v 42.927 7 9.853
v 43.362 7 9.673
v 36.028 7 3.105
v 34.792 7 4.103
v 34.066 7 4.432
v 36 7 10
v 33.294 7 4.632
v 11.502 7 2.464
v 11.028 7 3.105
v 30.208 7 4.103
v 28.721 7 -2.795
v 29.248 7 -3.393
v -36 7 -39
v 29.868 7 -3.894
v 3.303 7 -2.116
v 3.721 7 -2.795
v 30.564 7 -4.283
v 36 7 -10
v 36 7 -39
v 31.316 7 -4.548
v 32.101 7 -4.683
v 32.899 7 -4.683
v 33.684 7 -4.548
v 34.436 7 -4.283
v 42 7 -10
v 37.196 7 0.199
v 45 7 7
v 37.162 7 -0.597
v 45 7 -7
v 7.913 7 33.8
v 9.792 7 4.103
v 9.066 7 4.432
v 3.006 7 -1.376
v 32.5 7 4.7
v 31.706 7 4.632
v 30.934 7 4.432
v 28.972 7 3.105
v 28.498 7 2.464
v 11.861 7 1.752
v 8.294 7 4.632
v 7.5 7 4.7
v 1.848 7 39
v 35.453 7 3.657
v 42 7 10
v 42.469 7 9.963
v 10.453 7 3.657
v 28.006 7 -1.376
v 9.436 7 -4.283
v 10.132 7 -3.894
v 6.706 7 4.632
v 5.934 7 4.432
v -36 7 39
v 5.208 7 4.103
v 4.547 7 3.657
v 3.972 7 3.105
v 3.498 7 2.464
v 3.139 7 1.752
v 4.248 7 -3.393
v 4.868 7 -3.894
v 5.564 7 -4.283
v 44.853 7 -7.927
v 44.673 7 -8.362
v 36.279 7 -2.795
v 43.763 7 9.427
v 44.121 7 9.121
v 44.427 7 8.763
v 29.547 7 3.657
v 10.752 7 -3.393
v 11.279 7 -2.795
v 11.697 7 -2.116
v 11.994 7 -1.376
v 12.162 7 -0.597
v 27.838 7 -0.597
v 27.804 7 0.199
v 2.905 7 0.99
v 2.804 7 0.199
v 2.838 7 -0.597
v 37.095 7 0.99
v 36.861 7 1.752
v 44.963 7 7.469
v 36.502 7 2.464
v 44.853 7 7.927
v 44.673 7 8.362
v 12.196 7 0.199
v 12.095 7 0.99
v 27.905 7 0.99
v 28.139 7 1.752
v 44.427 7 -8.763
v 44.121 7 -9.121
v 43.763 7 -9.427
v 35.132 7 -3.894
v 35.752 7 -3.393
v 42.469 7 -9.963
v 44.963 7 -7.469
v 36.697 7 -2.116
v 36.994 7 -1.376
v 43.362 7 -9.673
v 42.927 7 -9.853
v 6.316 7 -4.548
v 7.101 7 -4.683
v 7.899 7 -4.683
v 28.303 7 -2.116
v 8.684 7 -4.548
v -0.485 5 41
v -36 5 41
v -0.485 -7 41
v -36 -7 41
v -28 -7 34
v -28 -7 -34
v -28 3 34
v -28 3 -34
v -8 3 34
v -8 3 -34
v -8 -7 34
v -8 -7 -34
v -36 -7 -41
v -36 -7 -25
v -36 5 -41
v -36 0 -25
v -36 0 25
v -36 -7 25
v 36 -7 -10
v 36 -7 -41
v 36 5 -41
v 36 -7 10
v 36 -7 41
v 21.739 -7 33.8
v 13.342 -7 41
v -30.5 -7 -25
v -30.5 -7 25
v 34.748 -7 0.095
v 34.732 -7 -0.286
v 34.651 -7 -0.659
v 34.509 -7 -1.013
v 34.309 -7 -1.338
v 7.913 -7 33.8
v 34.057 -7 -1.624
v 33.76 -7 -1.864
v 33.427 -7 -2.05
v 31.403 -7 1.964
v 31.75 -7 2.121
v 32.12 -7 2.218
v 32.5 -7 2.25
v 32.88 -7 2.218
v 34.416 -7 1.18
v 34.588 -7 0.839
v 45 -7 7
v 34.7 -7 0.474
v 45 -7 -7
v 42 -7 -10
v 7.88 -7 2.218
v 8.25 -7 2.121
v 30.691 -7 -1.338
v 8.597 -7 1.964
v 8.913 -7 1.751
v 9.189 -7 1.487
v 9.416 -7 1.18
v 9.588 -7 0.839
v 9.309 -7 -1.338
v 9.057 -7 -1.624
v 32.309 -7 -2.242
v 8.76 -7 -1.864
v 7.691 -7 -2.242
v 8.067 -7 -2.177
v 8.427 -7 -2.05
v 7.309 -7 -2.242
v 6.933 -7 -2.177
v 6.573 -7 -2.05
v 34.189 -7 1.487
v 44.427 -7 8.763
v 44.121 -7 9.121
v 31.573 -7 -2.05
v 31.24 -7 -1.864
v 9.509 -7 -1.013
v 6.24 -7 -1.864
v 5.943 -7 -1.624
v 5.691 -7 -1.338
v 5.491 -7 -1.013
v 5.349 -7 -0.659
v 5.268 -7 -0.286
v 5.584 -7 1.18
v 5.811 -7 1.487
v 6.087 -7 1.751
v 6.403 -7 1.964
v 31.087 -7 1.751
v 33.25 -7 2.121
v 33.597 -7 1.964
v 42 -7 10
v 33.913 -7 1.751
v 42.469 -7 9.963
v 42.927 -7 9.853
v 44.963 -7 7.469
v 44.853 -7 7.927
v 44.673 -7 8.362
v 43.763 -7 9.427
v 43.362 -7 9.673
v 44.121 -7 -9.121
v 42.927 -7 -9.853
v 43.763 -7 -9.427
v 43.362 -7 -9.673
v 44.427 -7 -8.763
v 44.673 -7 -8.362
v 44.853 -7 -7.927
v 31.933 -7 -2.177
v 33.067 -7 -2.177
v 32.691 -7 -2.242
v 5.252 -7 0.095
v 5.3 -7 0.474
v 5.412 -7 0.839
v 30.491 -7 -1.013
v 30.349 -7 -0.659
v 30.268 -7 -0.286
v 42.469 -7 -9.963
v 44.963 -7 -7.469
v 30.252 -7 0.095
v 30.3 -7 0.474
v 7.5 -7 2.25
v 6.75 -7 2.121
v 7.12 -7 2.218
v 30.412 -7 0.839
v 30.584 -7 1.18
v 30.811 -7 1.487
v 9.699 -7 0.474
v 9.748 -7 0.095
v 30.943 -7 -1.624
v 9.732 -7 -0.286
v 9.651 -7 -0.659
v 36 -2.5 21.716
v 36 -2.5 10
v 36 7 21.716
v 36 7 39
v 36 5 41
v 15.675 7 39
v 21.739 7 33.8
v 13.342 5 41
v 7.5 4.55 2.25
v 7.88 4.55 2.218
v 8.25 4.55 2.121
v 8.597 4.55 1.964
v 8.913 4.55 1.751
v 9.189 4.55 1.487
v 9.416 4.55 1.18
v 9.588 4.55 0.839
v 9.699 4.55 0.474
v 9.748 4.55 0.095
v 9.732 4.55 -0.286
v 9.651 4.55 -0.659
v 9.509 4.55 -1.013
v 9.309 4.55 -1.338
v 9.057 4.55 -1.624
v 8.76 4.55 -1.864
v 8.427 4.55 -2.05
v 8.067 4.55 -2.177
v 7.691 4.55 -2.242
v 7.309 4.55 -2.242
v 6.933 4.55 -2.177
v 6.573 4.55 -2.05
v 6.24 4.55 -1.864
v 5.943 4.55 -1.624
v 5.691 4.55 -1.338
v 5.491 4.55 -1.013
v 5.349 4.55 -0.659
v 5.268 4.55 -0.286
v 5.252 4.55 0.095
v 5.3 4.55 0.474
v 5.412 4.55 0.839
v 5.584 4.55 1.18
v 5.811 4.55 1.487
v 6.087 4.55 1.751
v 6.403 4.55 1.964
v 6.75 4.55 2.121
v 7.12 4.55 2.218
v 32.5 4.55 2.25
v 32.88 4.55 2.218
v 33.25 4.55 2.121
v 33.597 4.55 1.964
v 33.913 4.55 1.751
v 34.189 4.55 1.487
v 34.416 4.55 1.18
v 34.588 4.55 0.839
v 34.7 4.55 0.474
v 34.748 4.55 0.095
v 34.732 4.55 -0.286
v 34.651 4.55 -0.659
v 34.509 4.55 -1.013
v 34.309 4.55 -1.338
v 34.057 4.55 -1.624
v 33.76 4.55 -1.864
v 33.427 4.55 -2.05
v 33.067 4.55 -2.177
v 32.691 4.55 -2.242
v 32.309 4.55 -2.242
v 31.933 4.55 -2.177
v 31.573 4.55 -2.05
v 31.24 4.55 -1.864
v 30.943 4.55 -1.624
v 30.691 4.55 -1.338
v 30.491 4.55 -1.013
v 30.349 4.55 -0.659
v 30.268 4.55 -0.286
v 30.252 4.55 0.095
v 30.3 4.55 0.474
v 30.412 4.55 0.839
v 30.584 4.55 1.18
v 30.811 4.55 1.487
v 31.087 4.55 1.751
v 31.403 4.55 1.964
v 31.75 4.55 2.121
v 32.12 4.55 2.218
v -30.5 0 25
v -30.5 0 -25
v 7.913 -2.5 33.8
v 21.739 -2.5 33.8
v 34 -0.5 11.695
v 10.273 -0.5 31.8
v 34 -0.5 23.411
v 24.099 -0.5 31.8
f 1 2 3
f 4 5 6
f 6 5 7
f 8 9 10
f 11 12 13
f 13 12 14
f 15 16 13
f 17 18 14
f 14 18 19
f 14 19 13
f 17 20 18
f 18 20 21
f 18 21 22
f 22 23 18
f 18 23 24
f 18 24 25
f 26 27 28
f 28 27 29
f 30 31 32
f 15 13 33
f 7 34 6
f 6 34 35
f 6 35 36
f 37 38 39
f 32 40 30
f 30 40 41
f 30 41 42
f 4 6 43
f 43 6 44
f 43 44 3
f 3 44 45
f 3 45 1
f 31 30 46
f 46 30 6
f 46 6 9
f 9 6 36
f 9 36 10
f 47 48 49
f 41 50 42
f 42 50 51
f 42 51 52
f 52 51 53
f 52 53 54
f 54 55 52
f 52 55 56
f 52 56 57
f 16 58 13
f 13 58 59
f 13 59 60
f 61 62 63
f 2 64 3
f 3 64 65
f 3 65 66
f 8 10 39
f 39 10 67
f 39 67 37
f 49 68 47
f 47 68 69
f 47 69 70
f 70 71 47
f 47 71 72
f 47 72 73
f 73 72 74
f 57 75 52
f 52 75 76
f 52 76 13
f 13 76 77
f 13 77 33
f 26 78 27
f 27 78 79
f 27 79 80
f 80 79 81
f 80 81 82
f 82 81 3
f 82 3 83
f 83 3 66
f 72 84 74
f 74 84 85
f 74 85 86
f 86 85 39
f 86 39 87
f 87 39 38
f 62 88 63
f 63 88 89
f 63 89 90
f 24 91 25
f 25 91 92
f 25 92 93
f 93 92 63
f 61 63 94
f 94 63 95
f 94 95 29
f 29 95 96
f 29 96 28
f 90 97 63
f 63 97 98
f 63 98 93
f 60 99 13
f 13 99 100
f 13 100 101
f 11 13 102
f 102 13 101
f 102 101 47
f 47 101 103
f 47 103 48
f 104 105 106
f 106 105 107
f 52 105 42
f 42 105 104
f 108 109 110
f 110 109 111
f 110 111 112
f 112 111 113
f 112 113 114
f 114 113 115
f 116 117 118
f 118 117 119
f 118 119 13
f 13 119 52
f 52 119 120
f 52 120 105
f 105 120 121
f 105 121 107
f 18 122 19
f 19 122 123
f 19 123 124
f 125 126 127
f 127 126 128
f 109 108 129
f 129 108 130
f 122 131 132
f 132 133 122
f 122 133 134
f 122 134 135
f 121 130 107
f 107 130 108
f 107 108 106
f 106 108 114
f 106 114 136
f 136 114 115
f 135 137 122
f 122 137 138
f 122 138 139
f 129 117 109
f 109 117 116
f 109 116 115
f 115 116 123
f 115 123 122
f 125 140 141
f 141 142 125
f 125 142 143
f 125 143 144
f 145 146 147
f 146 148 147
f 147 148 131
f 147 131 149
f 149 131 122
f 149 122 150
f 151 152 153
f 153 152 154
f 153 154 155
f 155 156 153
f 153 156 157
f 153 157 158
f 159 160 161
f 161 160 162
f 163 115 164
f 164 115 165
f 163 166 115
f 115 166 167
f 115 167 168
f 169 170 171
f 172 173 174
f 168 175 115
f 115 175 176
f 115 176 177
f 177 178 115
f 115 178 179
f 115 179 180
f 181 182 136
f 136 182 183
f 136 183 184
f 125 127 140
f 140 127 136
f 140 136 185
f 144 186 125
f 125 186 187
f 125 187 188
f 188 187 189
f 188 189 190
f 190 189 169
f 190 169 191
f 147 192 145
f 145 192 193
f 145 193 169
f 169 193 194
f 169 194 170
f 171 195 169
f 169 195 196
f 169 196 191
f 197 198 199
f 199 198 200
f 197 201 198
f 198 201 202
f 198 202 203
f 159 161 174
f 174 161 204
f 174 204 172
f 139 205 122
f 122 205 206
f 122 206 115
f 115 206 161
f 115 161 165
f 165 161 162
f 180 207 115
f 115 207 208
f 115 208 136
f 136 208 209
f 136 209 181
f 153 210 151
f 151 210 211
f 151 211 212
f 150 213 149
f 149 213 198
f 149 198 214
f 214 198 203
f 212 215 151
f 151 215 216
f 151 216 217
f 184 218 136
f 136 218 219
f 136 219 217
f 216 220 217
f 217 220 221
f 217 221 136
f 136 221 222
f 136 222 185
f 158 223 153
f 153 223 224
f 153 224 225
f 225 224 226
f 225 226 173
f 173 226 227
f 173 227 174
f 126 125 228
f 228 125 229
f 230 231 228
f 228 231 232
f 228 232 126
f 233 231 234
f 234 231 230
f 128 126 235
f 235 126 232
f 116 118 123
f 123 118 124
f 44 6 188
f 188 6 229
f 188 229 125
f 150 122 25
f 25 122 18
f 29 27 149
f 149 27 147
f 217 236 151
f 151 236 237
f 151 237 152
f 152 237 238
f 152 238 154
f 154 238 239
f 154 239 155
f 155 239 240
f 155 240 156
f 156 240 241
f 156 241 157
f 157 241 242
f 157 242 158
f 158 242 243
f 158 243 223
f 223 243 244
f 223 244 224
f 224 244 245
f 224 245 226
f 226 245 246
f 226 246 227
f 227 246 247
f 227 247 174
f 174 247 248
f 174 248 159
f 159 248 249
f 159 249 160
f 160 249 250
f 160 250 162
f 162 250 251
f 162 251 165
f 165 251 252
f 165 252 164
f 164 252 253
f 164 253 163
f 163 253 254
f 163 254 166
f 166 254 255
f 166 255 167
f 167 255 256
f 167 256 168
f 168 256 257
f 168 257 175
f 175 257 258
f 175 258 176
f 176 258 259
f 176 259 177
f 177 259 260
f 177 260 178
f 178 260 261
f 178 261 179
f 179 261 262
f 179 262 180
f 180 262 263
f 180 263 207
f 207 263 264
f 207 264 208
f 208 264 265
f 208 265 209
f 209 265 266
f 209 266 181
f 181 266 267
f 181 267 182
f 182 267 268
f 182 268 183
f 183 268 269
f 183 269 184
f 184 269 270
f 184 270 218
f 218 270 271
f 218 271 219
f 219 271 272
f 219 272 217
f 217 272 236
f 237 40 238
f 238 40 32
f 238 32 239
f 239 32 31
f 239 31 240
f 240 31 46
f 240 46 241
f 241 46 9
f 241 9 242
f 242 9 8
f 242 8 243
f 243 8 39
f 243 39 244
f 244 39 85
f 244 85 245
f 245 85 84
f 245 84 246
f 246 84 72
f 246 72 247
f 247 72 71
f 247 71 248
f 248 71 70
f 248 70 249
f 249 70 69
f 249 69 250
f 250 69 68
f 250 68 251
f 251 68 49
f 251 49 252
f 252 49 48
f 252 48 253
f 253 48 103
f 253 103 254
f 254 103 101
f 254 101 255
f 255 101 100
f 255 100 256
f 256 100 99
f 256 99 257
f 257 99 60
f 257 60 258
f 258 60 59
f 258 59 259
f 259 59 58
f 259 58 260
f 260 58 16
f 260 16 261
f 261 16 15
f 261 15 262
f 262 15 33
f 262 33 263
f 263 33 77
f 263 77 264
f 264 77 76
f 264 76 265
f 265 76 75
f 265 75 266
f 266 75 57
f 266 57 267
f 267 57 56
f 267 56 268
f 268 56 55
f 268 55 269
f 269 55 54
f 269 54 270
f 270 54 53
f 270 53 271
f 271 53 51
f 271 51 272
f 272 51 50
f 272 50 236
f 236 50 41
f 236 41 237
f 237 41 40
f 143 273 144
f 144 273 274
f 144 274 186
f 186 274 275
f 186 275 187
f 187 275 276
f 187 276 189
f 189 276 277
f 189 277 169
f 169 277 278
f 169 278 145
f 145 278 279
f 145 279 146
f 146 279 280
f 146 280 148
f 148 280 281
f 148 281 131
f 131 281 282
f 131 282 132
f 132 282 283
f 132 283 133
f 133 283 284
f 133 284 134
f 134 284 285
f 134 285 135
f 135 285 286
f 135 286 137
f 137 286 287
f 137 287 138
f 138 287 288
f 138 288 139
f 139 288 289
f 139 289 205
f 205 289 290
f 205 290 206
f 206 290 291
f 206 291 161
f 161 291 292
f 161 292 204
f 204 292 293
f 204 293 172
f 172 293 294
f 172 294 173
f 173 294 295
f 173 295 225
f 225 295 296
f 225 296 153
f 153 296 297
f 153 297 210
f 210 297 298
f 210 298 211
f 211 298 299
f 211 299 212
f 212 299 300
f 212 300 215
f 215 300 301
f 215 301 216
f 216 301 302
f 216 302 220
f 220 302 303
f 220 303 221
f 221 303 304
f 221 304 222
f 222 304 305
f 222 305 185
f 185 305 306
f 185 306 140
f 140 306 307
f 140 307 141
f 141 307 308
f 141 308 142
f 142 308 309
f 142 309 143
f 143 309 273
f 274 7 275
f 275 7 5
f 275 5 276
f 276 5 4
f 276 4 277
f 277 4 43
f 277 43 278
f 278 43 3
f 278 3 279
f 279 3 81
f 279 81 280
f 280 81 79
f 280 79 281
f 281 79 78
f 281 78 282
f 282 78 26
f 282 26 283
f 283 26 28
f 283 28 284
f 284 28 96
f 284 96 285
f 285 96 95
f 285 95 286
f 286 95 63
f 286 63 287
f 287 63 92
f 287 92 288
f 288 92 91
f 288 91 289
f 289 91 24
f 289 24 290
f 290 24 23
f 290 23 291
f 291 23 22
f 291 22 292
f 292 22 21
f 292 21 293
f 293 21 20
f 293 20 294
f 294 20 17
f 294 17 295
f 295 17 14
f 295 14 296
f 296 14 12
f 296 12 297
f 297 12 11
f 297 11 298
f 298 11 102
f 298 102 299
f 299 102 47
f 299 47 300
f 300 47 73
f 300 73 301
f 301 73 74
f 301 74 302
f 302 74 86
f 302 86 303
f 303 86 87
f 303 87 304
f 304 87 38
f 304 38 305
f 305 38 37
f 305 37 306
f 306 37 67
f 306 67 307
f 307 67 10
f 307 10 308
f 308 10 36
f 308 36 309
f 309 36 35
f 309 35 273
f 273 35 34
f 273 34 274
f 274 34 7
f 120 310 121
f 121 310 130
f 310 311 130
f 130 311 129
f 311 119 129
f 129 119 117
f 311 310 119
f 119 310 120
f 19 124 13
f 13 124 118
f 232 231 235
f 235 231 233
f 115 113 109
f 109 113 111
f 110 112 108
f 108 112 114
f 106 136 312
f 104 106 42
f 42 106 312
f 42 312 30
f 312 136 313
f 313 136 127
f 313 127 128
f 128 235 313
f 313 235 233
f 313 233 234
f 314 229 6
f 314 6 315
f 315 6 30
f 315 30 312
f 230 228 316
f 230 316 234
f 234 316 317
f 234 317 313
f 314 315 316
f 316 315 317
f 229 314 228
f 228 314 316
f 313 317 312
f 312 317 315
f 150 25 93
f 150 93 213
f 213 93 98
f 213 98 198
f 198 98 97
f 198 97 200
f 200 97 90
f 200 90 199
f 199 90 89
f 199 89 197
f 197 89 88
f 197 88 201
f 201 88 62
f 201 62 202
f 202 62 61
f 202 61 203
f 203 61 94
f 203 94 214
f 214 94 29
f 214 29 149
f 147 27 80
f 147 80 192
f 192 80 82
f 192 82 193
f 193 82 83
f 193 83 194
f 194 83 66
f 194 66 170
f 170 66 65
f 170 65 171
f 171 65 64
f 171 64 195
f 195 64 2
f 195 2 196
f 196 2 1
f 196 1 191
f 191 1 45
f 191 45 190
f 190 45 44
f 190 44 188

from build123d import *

# Parameters (mm, degrees)
ESQUISSE2_W                                    = 72
ESQUISSE2_H                                    = 14
BOSS_EXTRU_1_DEPTH                             = 41
ESQUISSE12_W                                   = 9
ESQUISSE12_H                                   = 20
BOSS_EXTRU_6_DEPTH                             = 14
FRAISAGE_POUR_VIS_T_TE_FRAIS_E_M41_D           = 4.3
FRAISAGE_POUR_VIS_T_TE_FRAIS_E_M41_CSINK_D     = 9.4
FRAISAGE_POUR_VIS_T_TE_FRAIS_E_M41_CSINK_ANGLE = 90
ENL_V_MAT_EXTRU_3_REACH                        = 95.798
ESQUISSE6_W                                    = 20
ESQUISSE6_H                                    = 10
ESQUISSE5_W                                    = 5.5
ESQUISSE5_H                                    = 50
ENL_V_MAT_EXTRU_2_DEPTH                        = 7
CHANFREIN1_SIZE                                = 2
ESQUISSE16_W                                   = 20
ESQUISSE16_H                                   = 7
BOSS_EXTRU_7_DEPTH                             = 10
ENL_V_START                                    = -14
ENL_V_MAT_EXTRU_4_DEPTH                        = 14
ENL_V_MAT_EXTRU_5_DEPTH                        = 7.5
CHANFREIN2_SIZE                                = 2
CONG_3_R                                       = 3


with BuildPart() as part:
    # Esquisse2 → Boss.-Extru.1 (new, symmetric)
    with BuildSketch(Plane.XY):
        Rectangle(ESQUISSE2_W, ESQUISSE2_H)
    extrude(amount=BOSS_EXTRU_1_DEPTH, both=True)

    # Esquisse12 → Boss.-Extru.6 (add)
    with BuildSketch(Plane(origin=(0, 7, 0), x_dir=(1, 0, 0), z_dir=(0, 1, 0))):
        with Locations((40.5, 0)):
            Rectangle(ESQUISSE12_W, ESQUISSE12_H)
    extrude(amount=-BOSS_EXTRU_6_DEPTH)

    # Fraisage pour vis à tête fraisée M41 (through all)
    with Locations(Plane(origin=(0, 7, 0), x_dir=(1, 0, 0), z_dir=(0, 1, 0))):
        with Locations((32.5, 0), (7.5, 0)):
            CounterSinkHole(FRAISAGE_POUR_VIS_T_TE_FRAIS_E_M41_D / 2, FRAISAGE_POUR_VIS_T_TE_FRAIS_E_M41_CSINK_D / 2, counter_sink_angle=FRAISAGE_POUR_VIS_T_TE_FRAIS_E_M41_CSINK_ANGLE)

    # Esquisse6 → Enlèv. mat.-Extru.3 (cut, up to next)
    with BuildSketch(Plane.XY.offset(41), mode=Mode.PRIVATE) as enl_v_mat_extru_3_sk1:
        with Locations((-18, -2)):
            Rectangle(ESQUISSE6_W, ESQUISSE6_H)
    enl_v_mat_extru_3_tool1 = extrude(enl_v_mat_extru_3_sk1.sketch, amount=-ENL_V_MAT_EXTRU_3_REACH, mode=Mode.PRIVATE) & part.part
    add(enl_v_mat_extru_3_tool1.solids().sort_by_distance((-18, -2, 41))[0], mode=Mode.SUBTRACT)

    # Esquisse5 → Enlèv. mat.-Extru.2 (cut)
    with BuildSketch(Plane(origin=(0, -7, 0), x_dir=(1, 0, 0), z_dir=(0, 1, 0))):
        with Locations((-33.25, 0)):
            Rectangle(ESQUISSE5_W, ESQUISSE5_H)
    extrude(amount=ENL_V_MAT_EXTRU_2_DEPTH, mode=Mode.SUBTRACT)

    # Chanfrein1
    chanfrein1_edges = [part.edges().sort_by_distance(p)[0] for p in [
        (0, 7, -41),
        (0, 7, 41),
    ]]
    chamfer(chanfrein1_edges, length=CHANFREIN1_SIZE)

    # Esquisse16 → Boss.-Extru.7 (add)
    with BuildSketch(Plane.XZ.offset(-3)):
        with Locations((-18, -37.5)):
            Rectangle(ESQUISSE16_W, ESQUISSE16_H)
    boss_extru_7 = extrude(amount=BOSS_EXTRU_7_DEPTH)

    # Symétrie1: Boss.-Extru.7 across plane
    add(boss_extru_7.mirror(Plane.XY))

    # Esquisse17 → Enlèv. mat.-Extru.4 (cut)
    with BuildSketch(Plane(origin=(0, 7, 0), x_dir=(1, 0, 0), z_dir=(0, 1, 0)).offset(ENL_V_START)):
        Polygon((13.342024655, -41), (21.739180223, -33.8), (7.912562911, -33.8), (-0.484592656, -41), align=None)
    extrude(amount=ENL_V_MAT_EXTRU_4_DEPTH, mode=Mode.SUBTRACT)

    # Esquisse18 → Enlèv. mat.-Extru.5 (cut)
    with BuildSketch(Plane(origin=(0, 7, 0), x_dir=(1, 0, 0), z_dir=(0, 1, 0))):
        Polygon((7.912562911, -33.8), (36, -10), (36, -21.716038419), (21.739180223, -33.8), align=None)
    extrude(amount=-ENL_V_MAT_EXTRU_5_DEPTH, mode=Mode.SUBTRACT)

    # Chanfrein2
    chanfrein2_edges = [part.edges().sort_by_distance(p)[0] for p in [
        (14.825871567, -0.5, 33.8),
        (36, -0.5, 15.858019209),
    ]]
    chamfer(chanfrein2_edges, length=CHANFREIN2_SIZE)

    # Congé3
    cong_3_edges = [part.edges().sort_by_distance(p)[0] for p in [
        (45, 0, 10),
        (45, 0, -10),
    ]]
    fillet(cong_3_edges, radius=CONG_3_R)


solid = part.part
